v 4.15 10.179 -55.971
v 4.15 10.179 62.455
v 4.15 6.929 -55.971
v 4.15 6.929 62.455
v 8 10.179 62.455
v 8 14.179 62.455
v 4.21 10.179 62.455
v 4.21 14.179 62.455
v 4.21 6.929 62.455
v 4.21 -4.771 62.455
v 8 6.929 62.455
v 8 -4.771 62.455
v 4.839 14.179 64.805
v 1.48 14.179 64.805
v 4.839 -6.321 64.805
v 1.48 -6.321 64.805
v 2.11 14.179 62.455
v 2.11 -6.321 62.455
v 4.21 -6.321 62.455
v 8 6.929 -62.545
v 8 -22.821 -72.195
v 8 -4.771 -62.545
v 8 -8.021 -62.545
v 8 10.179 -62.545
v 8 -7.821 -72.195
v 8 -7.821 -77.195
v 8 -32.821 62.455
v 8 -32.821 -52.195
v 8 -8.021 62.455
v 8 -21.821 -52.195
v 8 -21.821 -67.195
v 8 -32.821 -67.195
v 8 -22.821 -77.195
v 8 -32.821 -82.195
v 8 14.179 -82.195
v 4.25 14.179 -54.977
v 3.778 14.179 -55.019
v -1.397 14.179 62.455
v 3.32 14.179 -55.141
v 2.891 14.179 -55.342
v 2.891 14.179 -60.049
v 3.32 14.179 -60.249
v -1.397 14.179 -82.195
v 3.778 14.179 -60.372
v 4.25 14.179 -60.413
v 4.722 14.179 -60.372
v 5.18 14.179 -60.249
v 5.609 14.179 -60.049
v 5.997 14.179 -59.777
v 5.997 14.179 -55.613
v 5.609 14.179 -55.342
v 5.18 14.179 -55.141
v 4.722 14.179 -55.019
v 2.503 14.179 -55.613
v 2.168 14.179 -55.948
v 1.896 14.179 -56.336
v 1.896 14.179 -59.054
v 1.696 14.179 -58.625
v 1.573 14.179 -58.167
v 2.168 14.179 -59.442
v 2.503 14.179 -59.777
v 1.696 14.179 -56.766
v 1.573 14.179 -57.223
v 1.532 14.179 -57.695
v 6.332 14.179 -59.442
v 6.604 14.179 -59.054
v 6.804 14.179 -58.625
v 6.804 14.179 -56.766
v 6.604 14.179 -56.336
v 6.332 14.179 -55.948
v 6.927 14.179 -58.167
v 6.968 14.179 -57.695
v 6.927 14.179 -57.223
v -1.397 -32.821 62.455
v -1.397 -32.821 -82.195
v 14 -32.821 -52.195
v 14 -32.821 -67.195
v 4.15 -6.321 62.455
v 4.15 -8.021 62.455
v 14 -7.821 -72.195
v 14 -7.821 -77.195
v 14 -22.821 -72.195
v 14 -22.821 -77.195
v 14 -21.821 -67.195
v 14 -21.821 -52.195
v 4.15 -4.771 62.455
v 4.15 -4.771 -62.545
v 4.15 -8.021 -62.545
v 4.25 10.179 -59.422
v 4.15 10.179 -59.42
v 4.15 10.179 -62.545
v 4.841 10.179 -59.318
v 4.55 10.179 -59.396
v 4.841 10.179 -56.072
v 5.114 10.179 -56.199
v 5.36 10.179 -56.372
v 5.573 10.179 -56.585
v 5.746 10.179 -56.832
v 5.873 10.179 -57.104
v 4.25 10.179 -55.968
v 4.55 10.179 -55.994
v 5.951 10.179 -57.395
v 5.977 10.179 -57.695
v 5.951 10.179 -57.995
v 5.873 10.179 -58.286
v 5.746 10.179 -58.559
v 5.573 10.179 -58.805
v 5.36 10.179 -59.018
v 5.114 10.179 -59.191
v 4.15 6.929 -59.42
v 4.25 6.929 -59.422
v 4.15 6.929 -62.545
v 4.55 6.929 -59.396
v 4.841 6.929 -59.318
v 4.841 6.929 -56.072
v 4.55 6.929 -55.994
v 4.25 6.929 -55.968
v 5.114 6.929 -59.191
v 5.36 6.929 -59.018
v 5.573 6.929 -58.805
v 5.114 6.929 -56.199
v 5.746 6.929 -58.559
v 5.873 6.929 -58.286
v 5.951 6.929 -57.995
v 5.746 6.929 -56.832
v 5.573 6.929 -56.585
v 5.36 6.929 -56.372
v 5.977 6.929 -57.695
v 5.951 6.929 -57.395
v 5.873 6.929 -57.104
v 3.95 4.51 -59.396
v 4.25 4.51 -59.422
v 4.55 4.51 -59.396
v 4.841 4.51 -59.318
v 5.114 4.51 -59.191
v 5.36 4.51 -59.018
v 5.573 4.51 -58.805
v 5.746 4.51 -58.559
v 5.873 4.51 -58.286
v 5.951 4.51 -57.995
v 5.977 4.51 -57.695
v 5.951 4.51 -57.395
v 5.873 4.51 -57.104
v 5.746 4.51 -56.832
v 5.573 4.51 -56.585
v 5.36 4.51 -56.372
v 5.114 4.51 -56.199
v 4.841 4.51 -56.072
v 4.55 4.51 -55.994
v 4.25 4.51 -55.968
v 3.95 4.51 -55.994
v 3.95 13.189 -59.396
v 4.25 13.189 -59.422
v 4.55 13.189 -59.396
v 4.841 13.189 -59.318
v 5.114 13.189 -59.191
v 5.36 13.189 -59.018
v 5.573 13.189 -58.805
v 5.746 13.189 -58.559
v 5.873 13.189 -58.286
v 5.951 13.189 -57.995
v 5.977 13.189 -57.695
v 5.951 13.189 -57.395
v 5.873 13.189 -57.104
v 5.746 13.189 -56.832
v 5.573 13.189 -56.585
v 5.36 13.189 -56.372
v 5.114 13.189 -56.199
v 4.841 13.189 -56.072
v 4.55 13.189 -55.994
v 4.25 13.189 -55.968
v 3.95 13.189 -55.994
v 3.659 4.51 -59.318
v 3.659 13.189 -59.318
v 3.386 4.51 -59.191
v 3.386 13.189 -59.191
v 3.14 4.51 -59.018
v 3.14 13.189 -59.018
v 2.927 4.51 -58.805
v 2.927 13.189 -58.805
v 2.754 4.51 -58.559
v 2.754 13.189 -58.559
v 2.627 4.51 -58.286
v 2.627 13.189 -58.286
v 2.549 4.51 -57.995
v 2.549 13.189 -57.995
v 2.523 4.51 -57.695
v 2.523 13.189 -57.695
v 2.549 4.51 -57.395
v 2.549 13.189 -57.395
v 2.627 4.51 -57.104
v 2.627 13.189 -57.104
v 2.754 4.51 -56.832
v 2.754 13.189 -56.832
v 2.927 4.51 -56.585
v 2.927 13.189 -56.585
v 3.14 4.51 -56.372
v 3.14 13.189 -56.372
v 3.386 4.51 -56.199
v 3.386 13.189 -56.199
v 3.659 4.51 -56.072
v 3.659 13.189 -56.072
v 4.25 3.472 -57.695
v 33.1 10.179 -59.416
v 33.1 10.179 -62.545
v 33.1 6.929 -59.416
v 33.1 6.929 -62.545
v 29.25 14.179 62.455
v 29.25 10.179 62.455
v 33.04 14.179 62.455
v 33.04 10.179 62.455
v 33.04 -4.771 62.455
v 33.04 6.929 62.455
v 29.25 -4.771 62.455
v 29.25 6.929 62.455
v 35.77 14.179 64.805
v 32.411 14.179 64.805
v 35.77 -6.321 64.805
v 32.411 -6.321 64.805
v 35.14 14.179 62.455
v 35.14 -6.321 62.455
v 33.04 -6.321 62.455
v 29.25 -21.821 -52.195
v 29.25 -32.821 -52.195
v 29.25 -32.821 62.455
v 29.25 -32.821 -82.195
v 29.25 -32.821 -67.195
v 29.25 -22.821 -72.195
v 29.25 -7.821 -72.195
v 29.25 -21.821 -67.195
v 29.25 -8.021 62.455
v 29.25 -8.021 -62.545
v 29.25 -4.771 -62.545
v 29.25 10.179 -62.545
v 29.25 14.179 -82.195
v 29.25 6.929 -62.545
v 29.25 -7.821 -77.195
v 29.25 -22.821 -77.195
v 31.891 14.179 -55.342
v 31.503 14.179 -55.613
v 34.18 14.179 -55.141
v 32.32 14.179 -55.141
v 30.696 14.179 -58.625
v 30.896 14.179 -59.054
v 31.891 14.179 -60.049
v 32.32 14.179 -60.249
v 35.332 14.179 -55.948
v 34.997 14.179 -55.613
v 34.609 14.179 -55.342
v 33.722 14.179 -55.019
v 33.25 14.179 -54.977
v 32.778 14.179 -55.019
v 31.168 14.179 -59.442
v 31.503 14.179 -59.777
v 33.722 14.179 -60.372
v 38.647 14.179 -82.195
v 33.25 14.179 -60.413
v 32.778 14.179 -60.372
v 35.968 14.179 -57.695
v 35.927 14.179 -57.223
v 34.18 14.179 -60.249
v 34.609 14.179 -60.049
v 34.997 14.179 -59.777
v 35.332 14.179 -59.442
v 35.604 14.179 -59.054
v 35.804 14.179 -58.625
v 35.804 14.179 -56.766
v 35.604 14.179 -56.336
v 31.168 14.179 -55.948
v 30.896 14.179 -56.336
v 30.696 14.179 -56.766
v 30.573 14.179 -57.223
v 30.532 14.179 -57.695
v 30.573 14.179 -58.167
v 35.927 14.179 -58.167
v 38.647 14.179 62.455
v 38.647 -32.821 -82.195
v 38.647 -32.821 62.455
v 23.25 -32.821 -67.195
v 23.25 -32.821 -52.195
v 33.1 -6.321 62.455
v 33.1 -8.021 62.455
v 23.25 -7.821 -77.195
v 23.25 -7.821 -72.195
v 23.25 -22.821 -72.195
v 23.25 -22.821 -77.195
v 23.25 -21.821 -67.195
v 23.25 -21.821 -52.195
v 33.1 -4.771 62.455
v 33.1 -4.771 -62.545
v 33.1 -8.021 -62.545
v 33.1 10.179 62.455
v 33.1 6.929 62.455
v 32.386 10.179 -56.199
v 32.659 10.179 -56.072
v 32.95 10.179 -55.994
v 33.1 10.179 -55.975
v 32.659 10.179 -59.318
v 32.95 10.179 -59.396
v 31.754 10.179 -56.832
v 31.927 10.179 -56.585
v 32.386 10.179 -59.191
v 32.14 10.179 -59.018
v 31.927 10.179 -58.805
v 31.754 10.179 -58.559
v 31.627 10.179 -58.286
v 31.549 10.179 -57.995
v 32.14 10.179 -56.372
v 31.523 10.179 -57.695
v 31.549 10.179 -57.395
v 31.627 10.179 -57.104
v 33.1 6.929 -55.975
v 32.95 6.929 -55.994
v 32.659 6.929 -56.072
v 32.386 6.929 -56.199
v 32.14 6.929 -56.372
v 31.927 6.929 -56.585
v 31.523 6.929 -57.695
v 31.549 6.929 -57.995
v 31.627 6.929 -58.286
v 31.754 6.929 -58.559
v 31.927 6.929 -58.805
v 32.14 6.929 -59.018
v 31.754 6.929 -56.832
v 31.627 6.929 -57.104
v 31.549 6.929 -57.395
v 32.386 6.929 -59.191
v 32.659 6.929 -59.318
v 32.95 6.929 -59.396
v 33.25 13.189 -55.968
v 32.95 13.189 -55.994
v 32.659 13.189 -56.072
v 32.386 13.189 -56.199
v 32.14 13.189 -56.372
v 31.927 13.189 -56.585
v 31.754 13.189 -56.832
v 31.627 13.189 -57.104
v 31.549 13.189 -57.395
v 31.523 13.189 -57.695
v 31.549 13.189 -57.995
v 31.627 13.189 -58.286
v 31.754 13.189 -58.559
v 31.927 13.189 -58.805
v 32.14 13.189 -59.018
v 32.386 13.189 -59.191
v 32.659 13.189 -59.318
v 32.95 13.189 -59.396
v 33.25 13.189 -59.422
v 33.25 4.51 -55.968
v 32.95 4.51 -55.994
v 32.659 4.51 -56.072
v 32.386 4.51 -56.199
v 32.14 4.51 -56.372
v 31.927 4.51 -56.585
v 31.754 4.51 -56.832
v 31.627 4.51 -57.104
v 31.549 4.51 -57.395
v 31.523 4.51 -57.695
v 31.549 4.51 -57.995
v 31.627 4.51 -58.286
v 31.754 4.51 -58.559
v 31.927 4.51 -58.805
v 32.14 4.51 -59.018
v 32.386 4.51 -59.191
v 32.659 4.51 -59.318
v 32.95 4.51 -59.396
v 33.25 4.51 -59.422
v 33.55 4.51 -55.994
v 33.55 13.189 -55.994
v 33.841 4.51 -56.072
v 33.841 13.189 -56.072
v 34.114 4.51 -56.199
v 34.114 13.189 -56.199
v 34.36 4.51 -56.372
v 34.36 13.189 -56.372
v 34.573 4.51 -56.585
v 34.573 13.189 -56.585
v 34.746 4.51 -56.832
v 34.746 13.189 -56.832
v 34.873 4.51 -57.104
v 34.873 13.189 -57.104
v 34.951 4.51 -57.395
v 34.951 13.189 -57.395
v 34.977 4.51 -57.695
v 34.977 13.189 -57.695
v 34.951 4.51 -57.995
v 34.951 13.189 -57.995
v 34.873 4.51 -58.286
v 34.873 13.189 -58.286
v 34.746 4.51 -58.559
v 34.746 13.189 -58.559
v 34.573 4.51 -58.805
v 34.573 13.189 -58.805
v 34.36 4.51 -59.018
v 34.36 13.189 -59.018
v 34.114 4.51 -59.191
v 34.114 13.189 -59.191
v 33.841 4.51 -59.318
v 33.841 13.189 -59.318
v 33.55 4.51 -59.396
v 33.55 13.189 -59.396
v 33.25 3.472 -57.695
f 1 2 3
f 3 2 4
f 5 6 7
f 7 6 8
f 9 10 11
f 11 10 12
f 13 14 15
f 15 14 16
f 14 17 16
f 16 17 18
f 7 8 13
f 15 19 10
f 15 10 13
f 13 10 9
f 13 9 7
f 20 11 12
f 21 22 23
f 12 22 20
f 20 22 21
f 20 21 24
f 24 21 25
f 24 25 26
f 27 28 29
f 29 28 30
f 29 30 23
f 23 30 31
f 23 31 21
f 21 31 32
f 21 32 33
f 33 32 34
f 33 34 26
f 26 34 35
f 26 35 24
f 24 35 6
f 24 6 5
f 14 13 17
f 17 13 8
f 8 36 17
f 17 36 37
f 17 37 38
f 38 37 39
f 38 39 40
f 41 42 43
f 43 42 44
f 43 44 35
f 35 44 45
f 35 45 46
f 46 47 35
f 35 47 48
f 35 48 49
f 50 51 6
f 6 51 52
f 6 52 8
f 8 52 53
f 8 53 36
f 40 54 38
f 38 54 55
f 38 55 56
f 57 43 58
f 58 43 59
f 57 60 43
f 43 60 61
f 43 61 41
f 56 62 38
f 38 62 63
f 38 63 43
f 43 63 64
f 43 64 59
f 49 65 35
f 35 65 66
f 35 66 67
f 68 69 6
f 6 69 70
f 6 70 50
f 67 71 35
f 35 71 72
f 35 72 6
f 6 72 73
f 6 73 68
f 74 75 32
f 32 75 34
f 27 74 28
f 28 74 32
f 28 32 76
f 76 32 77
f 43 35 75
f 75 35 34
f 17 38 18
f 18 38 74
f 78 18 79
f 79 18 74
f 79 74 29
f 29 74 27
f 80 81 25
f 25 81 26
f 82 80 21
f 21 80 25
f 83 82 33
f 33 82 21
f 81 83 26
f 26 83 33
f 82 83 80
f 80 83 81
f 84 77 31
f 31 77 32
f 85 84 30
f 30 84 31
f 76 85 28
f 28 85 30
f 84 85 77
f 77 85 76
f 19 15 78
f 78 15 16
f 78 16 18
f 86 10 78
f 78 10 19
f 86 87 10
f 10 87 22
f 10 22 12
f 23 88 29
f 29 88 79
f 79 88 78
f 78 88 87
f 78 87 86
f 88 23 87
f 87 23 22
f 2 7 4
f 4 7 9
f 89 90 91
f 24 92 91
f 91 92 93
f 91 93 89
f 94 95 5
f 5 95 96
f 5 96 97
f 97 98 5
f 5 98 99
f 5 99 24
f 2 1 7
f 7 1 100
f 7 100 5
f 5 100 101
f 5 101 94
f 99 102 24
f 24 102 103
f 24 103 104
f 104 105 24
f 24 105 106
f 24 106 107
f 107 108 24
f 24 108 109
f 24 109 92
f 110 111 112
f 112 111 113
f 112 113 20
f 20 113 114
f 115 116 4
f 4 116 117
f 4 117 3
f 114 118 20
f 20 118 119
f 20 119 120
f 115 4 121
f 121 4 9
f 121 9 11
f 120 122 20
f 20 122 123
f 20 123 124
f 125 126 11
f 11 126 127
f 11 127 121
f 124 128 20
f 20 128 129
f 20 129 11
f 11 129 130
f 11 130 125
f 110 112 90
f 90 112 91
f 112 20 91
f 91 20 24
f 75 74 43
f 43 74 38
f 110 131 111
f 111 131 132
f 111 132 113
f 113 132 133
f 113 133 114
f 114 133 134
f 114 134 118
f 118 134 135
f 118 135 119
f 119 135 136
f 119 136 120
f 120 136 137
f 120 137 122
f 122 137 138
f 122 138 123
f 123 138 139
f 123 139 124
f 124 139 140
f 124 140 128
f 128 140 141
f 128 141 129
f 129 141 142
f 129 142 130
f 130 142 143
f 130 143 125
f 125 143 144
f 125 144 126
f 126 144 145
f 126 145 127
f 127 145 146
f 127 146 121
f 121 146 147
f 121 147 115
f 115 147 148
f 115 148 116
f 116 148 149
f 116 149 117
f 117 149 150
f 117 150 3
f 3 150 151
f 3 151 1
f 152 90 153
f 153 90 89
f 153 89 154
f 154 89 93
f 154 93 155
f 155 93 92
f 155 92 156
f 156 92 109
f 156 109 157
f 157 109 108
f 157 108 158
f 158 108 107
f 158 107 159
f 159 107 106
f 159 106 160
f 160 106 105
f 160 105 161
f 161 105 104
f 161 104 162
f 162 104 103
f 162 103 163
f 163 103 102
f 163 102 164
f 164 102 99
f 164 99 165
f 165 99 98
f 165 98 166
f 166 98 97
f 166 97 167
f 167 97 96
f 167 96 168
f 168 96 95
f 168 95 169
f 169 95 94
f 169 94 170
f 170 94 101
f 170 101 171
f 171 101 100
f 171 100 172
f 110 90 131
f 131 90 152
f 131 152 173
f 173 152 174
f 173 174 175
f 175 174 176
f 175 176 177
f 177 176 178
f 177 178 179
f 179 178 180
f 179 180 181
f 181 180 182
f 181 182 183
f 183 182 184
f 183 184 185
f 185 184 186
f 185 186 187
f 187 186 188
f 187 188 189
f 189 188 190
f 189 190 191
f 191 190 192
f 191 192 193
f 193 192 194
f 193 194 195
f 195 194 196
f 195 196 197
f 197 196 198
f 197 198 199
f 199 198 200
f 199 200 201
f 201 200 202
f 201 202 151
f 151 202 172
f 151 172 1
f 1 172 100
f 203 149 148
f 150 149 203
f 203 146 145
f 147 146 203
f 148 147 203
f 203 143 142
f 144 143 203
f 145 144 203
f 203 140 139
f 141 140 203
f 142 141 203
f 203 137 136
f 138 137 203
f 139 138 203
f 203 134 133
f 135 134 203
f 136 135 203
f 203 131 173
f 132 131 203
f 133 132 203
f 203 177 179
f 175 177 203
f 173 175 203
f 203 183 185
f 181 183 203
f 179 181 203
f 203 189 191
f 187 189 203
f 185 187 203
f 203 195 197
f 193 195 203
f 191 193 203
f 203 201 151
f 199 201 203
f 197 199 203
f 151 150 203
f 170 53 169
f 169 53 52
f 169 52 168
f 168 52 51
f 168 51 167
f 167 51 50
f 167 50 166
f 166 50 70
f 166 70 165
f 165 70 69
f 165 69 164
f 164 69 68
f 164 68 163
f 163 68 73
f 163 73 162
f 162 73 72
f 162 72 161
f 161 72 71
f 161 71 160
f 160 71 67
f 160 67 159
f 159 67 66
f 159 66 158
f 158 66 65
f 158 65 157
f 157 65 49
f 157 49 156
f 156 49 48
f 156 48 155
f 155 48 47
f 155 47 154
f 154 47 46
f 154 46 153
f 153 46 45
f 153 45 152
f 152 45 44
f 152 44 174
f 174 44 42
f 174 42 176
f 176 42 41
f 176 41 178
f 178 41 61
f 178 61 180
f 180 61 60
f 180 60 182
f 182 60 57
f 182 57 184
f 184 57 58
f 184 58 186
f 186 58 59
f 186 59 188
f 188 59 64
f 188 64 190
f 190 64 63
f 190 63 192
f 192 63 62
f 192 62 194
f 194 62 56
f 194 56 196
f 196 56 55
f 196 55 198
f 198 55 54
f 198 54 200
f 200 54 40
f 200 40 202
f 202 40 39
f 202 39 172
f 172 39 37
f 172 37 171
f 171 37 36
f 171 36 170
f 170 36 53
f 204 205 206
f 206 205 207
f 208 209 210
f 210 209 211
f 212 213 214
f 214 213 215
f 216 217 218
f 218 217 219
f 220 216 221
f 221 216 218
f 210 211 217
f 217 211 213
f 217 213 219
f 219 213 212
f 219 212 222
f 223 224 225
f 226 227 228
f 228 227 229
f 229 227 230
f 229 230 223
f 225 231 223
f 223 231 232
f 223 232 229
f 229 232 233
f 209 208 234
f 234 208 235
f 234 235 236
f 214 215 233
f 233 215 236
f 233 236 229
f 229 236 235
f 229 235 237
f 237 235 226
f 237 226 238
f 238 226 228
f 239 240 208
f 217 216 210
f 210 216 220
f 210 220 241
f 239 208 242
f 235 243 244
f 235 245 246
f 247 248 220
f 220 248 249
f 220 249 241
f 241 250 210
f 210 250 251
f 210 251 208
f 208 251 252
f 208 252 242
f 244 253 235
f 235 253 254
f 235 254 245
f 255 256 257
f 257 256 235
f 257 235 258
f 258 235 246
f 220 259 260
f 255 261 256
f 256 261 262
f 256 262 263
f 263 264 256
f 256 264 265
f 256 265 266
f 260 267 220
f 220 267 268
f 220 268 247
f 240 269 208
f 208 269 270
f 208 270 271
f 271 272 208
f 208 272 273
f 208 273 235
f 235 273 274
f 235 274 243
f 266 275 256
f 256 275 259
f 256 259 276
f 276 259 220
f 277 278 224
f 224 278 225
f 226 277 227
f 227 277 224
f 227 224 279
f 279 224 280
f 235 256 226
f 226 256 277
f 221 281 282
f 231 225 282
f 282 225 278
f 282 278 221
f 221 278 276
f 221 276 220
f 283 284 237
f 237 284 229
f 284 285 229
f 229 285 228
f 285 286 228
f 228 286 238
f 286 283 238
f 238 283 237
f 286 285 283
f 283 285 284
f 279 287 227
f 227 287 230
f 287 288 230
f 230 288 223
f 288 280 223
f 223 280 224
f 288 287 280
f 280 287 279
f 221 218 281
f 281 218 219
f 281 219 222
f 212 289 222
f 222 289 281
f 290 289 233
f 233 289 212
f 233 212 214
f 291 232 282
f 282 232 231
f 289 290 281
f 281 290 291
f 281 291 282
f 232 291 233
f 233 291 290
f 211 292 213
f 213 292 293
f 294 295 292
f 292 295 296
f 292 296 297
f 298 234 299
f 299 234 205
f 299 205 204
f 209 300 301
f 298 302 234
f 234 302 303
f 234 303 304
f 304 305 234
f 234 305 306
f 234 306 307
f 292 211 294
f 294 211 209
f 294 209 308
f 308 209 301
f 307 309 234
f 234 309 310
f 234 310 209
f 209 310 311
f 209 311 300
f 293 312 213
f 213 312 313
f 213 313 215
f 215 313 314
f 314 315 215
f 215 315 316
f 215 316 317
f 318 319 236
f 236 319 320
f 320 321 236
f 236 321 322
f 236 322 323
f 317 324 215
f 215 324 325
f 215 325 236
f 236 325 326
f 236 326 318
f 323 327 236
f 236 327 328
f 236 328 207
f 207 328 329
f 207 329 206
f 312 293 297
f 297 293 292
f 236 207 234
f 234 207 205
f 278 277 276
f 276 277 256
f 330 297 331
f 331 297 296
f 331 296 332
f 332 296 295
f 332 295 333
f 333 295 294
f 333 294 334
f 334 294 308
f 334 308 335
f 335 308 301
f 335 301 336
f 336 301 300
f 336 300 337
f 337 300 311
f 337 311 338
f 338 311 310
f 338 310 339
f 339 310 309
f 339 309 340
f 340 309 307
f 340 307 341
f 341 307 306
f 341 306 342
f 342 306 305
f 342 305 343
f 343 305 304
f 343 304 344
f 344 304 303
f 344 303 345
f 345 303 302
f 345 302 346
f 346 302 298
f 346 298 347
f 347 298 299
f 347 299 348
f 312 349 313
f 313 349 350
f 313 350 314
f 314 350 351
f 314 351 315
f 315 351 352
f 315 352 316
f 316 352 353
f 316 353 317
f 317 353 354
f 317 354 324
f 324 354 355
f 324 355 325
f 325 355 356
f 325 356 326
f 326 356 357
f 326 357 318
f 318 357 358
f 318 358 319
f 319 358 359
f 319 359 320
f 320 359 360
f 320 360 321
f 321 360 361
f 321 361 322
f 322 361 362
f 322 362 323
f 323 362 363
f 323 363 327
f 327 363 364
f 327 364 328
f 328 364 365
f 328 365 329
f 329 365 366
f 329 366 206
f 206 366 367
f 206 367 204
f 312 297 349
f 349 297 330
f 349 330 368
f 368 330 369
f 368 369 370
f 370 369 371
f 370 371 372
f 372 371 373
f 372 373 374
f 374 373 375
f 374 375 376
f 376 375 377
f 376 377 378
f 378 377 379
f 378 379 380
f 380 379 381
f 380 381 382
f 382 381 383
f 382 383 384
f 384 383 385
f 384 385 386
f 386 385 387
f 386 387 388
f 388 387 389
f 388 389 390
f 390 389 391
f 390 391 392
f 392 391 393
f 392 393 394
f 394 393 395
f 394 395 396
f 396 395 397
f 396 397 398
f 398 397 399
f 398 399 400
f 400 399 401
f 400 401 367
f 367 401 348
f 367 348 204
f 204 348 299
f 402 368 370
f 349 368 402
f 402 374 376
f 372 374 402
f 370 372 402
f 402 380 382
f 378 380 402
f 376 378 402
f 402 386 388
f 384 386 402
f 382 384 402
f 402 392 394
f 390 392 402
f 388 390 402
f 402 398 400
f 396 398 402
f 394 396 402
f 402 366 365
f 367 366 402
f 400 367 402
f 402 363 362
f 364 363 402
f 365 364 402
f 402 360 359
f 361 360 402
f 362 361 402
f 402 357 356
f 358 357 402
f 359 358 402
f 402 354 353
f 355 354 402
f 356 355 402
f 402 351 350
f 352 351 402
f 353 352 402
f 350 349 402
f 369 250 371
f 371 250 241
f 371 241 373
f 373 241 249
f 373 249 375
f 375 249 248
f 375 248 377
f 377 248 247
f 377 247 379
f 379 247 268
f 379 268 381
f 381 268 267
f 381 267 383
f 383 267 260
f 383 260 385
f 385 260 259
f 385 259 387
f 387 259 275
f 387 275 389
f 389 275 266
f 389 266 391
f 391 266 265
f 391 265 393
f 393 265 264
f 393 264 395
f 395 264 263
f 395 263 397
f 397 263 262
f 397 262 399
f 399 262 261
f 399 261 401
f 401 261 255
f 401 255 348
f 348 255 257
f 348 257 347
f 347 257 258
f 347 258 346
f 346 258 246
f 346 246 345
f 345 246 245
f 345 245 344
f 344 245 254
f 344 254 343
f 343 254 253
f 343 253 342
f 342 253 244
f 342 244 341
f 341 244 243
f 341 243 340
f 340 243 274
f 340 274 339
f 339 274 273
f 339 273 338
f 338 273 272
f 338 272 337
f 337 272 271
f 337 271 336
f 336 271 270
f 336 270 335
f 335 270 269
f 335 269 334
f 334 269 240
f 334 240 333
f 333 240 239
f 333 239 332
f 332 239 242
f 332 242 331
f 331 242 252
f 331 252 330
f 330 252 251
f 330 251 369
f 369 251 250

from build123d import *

# Parameters (mm, degrees)
SKETCH1_W                      = 147
SKETCH1_H                      = 47
BOSS_EXTRUDE1_DEPTH            = 8
CUT_EXTRUDE8_DEPTH             = 25
SKETCH43_W                     = 5
SKETCH43_H                     = 15
BOSS_EXTRUDE8_DEPTH            = 6
SKETCH44_W                     = 15
SKETCH44_H                     = 11
BOSS_EXTRUDE9_DEPTH            = 6
SKETCH13_W                     = 12
SKETCH13_H                     = 2.35
CUT_EXTRUDE9_DEPTH             = 26.5
SKETCH46_W                     = 3.85
SKETCH46_H                     = 3.25
CUT_EXTRUDE15_DEPTH            = 125
SKETCH47_W                     = 1.397180602
SKETCH47_H                     = 144.65
BOSS_EXTRUDE10_DEPTH           = 47
F_8_32_TAPPED_HOLE1_AT_2_COUNT = 2
F_8_32_TAPPED_HOLE1_AT_2_PITCH = 29


with BuildPart() as part:
    # Sketch1 → Boss-Extrude1 (new body)
    with BuildSketch(Plane(origin=(0, 0, 0), x_dir=(0, 0, -1), z_dir=(1, 0, 0))):
        with Locations((8.695219221, -9.320528122)):
            Rectangle(SKETCH1_W, SKETCH1_H)
    extrude(amount=BOSS_EXTRUDE1_DEPTH)

    # Sketch12 → Cut-Extrude8 (cut)
    with BuildSketch(Plane(origin=(0, 14.179471878, 0), x_dir=(1, 0, 0), z_dir=(0, 1, 0))):
        Polygon((0, -62.454780779), (2.109680602, -62.454780779), (1.48, -64.804780779), (0, -64.804780779), align=None)
        Polygon((8, -62.454780779), (8, -64.804780779), (4.839361204, -64.804780779), (4.209680602, -62.454780779), align=None)
    extrude(amount=-CUT_EXTRUDE8_DEPTH, mode=Mode.SUBTRACT)

    # Sketch43 → Boss-Extrude8 (add)
    with BuildSketch(Plane(origin=(8, 0, 0), x_dir=(0, 0, -1), z_dir=(1, 0, 0))):
        with Locations((74.695219221, -15.320528122)):
            Rectangle(SKETCH43_W, SKETCH43_H)
    extrude(amount=BOSS_EXTRUDE8_DEPTH)

    # Sketch44 → Boss-Extrude9 (add)
    with BuildSketch(Plane(origin=(8, 0, 0), x_dir=(0, 0, -1), z_dir=(1, 0, 0))):
        with Locations((59.695219221, -27.320528122)):
            Rectangle(SKETCH44_W, SKETCH44_H)
    extrude(amount=BOSS_EXTRUDE9_DEPTH)

    # Sketch13 → Cut-Extrude9 (cut)
    with BuildSketch(Plane.XZ.offset(32.820528122)):
        with Locations((4.084013989, 63.629780779)):
            Rectangle(SKETCH13_W, SKETCH13_H)
    extrude(amount=-CUT_EXTRUDE9_DEPTH, mode=Mode.SUBTRACT)

    # Sketch46 → Cut-Extrude15 (cut)
    with BuildSketch(Plane.XY.offset(62.454780779)):
        with Locations((6.075, 8.554471878)):
            Rectangle(SKETCH46_W, SKETCH46_H)
        with Locations((6.075, -6.395528122)):
            Rectangle(SKETCH46_W, SKETCH46_H)
    extrude(amount=-CUT_EXTRUDE15_DEPTH, mode=Mode.SUBTRACT)

    # Sketch47 → Boss-Extrude10 (add)
    with BuildSketch(Plane(origin=(0, 14.179471878, 0), x_dir=(1, 0, 0), z_dir=(0, 1, 0))):
        with Locations((-0.698590301, 9.870219221)):
            Rectangle(SKETCH47_W, SKETCH47_H)
    extrude(amount=-BOSS_EXTRUDE10_DEPTH)


with BuildPart() as body_2:
    # Mirror4: mirrored copy
    add(part.part.mirror(Plane.ZY.offset(-18.625)))

    # Sketch37 → #8-32 Tapped Hole1 (revolve, cut)
    with BuildSketch(Plane(origin=(33.25, 14.179471878, -57.695219221), x_dir=(0, 0, 1), z_dir=(1, 0, 0))):
        Polygon((0, 0), (0, 10.70744), (1.7272, 9.669633539), (1.7272, 0.9906), (2.7178, 0), align=None)
    f_8_32_tapped_hole1 = revolve(axis=Axis((33.25, 20.529471878, -57.695219221), (0, -1, 0)), mode=Mode.SUBTRACT)


with BuildPart() as part_1:
    add(part.part)

    # #8-32 Tapped Hole1 at 2: #8-32 Tapped Hole1 ×2
    with Locations(*[(-i * F_8_32_TAPPED_HOLE1_AT_2_PITCH, 0, 0) for i in range(1, F_8_32_TAPPED_HOLE1_AT_2_COUNT)]):
        add(f_8_32_tapped_hole1, mode=Mode.SUBTRACT)


solid = Compound([body_2.part, part_1.part])
